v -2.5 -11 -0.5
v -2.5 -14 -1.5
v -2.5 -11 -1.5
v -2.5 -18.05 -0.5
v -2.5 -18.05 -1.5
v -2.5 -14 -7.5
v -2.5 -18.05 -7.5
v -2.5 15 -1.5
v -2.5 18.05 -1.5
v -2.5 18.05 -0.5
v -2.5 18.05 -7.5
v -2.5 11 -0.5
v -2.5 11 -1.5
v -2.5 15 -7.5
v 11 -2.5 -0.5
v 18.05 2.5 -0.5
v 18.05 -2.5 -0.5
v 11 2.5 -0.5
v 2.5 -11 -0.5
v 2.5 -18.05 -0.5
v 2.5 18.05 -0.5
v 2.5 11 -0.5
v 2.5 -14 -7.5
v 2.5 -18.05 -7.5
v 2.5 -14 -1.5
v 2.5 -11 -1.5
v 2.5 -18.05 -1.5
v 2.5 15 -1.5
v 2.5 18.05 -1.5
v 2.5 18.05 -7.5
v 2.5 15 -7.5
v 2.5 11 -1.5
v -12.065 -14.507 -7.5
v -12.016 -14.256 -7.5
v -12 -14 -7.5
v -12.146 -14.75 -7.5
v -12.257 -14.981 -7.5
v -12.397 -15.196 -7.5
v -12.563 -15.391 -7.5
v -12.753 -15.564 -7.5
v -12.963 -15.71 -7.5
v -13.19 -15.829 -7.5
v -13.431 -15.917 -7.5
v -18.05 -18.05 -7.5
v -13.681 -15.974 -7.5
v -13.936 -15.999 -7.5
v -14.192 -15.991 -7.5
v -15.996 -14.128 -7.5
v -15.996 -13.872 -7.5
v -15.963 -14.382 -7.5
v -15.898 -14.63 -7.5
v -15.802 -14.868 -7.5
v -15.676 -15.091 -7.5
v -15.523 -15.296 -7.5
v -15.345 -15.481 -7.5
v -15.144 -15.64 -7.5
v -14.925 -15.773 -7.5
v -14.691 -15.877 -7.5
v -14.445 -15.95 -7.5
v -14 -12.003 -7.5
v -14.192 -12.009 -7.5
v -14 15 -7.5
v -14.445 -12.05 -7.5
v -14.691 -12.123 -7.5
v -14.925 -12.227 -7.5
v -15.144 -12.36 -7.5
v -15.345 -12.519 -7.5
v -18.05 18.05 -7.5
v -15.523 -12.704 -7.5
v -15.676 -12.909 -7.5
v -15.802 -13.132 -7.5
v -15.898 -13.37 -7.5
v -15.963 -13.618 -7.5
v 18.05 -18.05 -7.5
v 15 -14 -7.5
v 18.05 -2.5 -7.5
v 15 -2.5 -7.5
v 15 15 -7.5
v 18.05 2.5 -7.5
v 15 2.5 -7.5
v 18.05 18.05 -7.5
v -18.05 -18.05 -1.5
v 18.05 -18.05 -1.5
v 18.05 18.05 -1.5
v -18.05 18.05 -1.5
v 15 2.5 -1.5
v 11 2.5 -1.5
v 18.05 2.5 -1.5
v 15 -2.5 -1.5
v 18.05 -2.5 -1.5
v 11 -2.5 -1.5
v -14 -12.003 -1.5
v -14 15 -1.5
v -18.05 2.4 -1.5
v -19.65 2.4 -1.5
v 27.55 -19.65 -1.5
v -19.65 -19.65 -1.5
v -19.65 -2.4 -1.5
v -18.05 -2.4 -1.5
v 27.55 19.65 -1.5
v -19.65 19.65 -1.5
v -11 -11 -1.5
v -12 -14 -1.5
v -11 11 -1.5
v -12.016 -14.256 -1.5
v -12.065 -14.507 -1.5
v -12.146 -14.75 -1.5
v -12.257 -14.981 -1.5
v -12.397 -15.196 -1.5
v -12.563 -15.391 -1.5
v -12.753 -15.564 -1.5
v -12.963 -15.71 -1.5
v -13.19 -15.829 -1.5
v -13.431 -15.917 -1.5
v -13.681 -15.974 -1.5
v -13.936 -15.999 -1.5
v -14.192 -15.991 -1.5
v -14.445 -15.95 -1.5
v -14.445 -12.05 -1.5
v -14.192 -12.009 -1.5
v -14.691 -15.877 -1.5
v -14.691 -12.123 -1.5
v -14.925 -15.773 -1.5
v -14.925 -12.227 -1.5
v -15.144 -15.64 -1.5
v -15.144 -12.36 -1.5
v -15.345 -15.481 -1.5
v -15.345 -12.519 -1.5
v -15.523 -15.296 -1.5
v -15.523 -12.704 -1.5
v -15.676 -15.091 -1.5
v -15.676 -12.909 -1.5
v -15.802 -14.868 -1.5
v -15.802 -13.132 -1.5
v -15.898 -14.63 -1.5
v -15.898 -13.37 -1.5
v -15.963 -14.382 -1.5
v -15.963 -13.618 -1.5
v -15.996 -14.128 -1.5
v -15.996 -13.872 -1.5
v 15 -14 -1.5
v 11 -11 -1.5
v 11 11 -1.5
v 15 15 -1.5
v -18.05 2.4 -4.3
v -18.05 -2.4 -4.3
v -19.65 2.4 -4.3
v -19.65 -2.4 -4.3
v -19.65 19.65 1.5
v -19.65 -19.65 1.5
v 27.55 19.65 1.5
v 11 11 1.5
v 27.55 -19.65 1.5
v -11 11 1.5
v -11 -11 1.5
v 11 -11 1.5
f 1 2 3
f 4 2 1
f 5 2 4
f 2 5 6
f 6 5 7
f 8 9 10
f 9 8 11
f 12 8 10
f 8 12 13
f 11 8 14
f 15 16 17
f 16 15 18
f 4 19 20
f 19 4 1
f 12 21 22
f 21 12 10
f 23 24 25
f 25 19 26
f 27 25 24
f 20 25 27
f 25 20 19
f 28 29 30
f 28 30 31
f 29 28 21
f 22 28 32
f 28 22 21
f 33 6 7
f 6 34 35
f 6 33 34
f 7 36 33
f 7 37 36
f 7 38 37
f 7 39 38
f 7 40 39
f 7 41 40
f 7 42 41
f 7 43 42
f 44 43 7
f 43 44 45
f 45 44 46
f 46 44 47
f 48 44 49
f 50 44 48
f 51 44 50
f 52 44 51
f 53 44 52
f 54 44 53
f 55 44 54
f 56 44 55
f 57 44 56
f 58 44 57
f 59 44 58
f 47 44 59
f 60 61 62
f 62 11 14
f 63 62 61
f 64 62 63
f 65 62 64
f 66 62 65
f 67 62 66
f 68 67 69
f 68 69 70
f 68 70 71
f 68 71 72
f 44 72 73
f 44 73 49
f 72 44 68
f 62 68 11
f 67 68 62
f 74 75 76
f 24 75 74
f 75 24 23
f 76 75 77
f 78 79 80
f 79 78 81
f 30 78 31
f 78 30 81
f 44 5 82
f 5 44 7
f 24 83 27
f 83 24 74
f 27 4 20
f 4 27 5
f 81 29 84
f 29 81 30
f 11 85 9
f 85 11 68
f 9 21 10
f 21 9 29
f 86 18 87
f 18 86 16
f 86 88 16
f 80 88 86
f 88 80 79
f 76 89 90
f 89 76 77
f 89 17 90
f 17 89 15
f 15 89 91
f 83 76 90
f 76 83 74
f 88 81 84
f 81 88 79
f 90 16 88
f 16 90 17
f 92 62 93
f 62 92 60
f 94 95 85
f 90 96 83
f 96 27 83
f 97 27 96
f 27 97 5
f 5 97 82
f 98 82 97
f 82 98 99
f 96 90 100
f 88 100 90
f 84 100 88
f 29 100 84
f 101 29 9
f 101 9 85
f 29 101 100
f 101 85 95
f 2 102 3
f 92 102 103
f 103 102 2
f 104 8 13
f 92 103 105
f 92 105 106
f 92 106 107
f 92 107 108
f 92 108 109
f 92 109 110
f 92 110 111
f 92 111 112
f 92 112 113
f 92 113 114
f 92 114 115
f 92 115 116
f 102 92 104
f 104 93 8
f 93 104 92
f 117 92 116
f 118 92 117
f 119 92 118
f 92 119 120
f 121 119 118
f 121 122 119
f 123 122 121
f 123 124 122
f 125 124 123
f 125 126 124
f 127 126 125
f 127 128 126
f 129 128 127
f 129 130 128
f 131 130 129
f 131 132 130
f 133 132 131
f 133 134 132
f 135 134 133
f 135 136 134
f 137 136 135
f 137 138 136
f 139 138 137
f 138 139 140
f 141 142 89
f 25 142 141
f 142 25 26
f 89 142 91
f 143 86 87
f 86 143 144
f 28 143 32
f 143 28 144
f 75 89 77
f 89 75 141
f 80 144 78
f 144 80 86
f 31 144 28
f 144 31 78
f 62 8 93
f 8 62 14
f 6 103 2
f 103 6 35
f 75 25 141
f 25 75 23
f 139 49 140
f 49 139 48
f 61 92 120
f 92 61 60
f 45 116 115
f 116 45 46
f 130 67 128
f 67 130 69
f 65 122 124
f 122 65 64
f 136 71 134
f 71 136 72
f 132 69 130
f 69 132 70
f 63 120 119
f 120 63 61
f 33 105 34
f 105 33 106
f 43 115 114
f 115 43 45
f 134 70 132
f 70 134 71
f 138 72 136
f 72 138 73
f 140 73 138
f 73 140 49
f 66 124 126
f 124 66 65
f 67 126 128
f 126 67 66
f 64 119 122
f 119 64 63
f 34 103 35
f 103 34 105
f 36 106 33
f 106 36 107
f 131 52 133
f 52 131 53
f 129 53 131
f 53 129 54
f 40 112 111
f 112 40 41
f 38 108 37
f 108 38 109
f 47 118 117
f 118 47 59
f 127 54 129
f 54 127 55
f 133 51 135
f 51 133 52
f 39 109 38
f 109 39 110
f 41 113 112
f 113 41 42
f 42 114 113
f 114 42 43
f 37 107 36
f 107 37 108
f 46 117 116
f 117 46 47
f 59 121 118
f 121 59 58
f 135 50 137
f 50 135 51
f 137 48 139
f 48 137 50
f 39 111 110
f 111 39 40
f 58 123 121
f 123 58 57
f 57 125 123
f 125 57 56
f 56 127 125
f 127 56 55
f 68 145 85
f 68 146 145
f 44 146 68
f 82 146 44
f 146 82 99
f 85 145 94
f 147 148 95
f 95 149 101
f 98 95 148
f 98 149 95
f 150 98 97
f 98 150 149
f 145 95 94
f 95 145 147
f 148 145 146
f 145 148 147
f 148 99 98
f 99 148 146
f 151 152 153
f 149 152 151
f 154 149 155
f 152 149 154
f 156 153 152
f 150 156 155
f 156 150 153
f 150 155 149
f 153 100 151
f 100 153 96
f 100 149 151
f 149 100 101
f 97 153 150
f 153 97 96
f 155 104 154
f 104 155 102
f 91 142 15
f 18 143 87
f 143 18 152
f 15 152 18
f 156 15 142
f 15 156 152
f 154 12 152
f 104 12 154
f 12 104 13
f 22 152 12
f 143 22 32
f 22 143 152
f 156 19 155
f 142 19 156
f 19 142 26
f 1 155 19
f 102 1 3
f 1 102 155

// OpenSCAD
// file: globals_new.scad
// variables and global things for a single substrate holder
// to position a PCB with pogo-pins relative to a solar cell substrate
// for electrical characterization under illumination
// written by grey@christoforo.net
// on 13 OCT 2015
// numbers in mm

// modified by James Ball
// on 18 July 2017

$fn = 49; // defines arc roughness

keyWidth = 5; // for orientation key between cap and body
keyHeight = 3; // for orientation key between cap and body

//variables for optical alignment
opticAxisHeight=41; //height of optic axis above stage base
pixelHeight=19; //height of pixels from substrate edge
focusFromUpper=9; //gap from inside of stage upper lip to focal plane

//variables for the stage
stageLowerWidth=43.8; //width of the lower gap in the stage
stageUpperWidth=67.3; //width of the upper gap in the stage
stageLowerHeight=8.1; //height of lower lip above stage base
stageUpperHeight=16.3; //height of upper lip above stage base

//variables for reference photodiode
diodeSocketDiam=11; //diameter of socket for reference photodiode
diodeHeight=4; //height of the diode photodiode
diodeGap=5; //gap between the two photodiodes
diodeLegDiam=1; //diameter of hole for photodiode leg
diodeLegGap=5; //centre-centre spacing for photodiode legs

//variables for cap
capTol=0.2; //tolerance for cap fitting
window=22; //window len,wid
substrate=28; //substrate len,wid
subsTol=1; // tolerance extra room around substrate
substrateOffsetX=subsTol/2; //substrate offset from centerline
substrateOffsetY=subsTol/2; //substrate offset from centerline
capInsetHeight = 6;
capOverhang = 0;
tweezerSlotWidth = 5;
tweezerSlotIndent = 1;

//variables for body
wallThickness=3; //wall thickness above PCB shelf
aboveShelf=24; //height above shelf
belowShelf=stageUpperWidth-aboveShelf-focusFromUpper; //height below shelf to make total height with cap fit on upper part of stage
boardBuffer=0.3; //tolerance around board
board=36; //PCB len, wid
outletDown=15; // cable outlet offset from shelf
mountingHoleOffset = 2.3; //distance between edge of PCB and center of hole
holeDiameter = 2.6; //PCB mounting hole diameter
holeDepth = 5; //PCB mounting hole depth
holeDiameterTol = 0.2; //draw the mounting holes this much smaller
legSquare = 7; // leg slize square dim
shelfWidth = 1.5; //width of small shelf (& additional wall thickness of bottom half wall)
bodyWingWidth = 0;

//variables for height spacer
spacerThickness=opticAxisHeight-(wallThickness+wallThickness+pixelHeight)-stageLowerHeight;

//other variables
PCBThickness = 1.5;

// design checks
//assert(aboveShelf>(capInsetHeight+PCBThickness,'ERROR: Object overlap detected.') //assert doesn't exist (yet!)

// calculated body vars
totalHeight=belowShelf+aboveShelf;
cubeInner=board+boardBuffer;
cubeOuter=cubeInner+wallThickness;

sideOpeningWidth=cubeOuter-2*legSquare; //width of opening in side for wire exit
sideOpeningHeight=10; //height of opening in side for wire exit


//edge thing, Zmax=0, y=centered, mirrorable across @x=0 plane
module edgeThing(){
    translate([0,-wingWidth/2,-wallThickness*2])
    difference(){
        cube([wingWidth,wingLength,wallThickness*2]);
        cube([capTol,wingLength,wallThickness]); //cutout for cap tolerace
    }
}
// main file
// cap geometery for a single substrate holder
// written by grey@christoforo.net
// on 13 OCT 2015

// modified by James Ball
// on 18 July 2017

include <globals_new.scad>

difference(){
    union() {
        //top & window
        render() difference(){
            translate([spacerThickness/2, 0, 0]) cube([cubeOuter+capOverhang*2+spacerThickness,cubeOuter+capOverhang*2,wallThickness],center=true);
            cube([window,window,wallThickness],center=true);
        }
        
        //cap & substrate positioner
        translate([0, 0, -wallThickness/2-capInsetHeight/2])
        render() difference(){
            union(){
                cube([cubeInner-capTol,cubeInner-capTol,capInsetHeight],center=true);
                localKeyHeight = keyHeight-capTol;
                localKeyWidth = keyWidth-capTol;
                translate([-(cubeOuter+capOverhang*2)/2,-localKeyWidth/2,capInsetHeight/2-localKeyHeight]) cube([(cubeOuter+capOverhang*2)/2,localKeyWidth,localKeyHeight]); // key
            }
            translate([substrateOffsetX,substrateOffsetY,0]) union(){
                cube([substrate+subsTol,substrate+subsTol,capInsetHeight],center=true);
                translate([-(substrate+subsTol)/2,-(substrate+subsTol)/2,-capInsetHeight/2]) cylinder(capInsetHeight,d=4); //allignment corner indicator
            }
        }
    }
    //tweezer slots
    translate([0,0,tweezerSlotIndent/2-wallThickness/2-capInsetHeight/2]) {
        cube([tweezerSlotWidth,cubeInner-capTol,capInsetHeight+tweezerSlotIndent],center=true);
        rotate(a=[0,0,-90]) translate([0,(cubeInner-capTol)/4,0]) cube([tweezerSlotWidth,(cubeInner-capTol)/2,capInsetHeight+tweezerSlotIndent],center=true);
        }
}
